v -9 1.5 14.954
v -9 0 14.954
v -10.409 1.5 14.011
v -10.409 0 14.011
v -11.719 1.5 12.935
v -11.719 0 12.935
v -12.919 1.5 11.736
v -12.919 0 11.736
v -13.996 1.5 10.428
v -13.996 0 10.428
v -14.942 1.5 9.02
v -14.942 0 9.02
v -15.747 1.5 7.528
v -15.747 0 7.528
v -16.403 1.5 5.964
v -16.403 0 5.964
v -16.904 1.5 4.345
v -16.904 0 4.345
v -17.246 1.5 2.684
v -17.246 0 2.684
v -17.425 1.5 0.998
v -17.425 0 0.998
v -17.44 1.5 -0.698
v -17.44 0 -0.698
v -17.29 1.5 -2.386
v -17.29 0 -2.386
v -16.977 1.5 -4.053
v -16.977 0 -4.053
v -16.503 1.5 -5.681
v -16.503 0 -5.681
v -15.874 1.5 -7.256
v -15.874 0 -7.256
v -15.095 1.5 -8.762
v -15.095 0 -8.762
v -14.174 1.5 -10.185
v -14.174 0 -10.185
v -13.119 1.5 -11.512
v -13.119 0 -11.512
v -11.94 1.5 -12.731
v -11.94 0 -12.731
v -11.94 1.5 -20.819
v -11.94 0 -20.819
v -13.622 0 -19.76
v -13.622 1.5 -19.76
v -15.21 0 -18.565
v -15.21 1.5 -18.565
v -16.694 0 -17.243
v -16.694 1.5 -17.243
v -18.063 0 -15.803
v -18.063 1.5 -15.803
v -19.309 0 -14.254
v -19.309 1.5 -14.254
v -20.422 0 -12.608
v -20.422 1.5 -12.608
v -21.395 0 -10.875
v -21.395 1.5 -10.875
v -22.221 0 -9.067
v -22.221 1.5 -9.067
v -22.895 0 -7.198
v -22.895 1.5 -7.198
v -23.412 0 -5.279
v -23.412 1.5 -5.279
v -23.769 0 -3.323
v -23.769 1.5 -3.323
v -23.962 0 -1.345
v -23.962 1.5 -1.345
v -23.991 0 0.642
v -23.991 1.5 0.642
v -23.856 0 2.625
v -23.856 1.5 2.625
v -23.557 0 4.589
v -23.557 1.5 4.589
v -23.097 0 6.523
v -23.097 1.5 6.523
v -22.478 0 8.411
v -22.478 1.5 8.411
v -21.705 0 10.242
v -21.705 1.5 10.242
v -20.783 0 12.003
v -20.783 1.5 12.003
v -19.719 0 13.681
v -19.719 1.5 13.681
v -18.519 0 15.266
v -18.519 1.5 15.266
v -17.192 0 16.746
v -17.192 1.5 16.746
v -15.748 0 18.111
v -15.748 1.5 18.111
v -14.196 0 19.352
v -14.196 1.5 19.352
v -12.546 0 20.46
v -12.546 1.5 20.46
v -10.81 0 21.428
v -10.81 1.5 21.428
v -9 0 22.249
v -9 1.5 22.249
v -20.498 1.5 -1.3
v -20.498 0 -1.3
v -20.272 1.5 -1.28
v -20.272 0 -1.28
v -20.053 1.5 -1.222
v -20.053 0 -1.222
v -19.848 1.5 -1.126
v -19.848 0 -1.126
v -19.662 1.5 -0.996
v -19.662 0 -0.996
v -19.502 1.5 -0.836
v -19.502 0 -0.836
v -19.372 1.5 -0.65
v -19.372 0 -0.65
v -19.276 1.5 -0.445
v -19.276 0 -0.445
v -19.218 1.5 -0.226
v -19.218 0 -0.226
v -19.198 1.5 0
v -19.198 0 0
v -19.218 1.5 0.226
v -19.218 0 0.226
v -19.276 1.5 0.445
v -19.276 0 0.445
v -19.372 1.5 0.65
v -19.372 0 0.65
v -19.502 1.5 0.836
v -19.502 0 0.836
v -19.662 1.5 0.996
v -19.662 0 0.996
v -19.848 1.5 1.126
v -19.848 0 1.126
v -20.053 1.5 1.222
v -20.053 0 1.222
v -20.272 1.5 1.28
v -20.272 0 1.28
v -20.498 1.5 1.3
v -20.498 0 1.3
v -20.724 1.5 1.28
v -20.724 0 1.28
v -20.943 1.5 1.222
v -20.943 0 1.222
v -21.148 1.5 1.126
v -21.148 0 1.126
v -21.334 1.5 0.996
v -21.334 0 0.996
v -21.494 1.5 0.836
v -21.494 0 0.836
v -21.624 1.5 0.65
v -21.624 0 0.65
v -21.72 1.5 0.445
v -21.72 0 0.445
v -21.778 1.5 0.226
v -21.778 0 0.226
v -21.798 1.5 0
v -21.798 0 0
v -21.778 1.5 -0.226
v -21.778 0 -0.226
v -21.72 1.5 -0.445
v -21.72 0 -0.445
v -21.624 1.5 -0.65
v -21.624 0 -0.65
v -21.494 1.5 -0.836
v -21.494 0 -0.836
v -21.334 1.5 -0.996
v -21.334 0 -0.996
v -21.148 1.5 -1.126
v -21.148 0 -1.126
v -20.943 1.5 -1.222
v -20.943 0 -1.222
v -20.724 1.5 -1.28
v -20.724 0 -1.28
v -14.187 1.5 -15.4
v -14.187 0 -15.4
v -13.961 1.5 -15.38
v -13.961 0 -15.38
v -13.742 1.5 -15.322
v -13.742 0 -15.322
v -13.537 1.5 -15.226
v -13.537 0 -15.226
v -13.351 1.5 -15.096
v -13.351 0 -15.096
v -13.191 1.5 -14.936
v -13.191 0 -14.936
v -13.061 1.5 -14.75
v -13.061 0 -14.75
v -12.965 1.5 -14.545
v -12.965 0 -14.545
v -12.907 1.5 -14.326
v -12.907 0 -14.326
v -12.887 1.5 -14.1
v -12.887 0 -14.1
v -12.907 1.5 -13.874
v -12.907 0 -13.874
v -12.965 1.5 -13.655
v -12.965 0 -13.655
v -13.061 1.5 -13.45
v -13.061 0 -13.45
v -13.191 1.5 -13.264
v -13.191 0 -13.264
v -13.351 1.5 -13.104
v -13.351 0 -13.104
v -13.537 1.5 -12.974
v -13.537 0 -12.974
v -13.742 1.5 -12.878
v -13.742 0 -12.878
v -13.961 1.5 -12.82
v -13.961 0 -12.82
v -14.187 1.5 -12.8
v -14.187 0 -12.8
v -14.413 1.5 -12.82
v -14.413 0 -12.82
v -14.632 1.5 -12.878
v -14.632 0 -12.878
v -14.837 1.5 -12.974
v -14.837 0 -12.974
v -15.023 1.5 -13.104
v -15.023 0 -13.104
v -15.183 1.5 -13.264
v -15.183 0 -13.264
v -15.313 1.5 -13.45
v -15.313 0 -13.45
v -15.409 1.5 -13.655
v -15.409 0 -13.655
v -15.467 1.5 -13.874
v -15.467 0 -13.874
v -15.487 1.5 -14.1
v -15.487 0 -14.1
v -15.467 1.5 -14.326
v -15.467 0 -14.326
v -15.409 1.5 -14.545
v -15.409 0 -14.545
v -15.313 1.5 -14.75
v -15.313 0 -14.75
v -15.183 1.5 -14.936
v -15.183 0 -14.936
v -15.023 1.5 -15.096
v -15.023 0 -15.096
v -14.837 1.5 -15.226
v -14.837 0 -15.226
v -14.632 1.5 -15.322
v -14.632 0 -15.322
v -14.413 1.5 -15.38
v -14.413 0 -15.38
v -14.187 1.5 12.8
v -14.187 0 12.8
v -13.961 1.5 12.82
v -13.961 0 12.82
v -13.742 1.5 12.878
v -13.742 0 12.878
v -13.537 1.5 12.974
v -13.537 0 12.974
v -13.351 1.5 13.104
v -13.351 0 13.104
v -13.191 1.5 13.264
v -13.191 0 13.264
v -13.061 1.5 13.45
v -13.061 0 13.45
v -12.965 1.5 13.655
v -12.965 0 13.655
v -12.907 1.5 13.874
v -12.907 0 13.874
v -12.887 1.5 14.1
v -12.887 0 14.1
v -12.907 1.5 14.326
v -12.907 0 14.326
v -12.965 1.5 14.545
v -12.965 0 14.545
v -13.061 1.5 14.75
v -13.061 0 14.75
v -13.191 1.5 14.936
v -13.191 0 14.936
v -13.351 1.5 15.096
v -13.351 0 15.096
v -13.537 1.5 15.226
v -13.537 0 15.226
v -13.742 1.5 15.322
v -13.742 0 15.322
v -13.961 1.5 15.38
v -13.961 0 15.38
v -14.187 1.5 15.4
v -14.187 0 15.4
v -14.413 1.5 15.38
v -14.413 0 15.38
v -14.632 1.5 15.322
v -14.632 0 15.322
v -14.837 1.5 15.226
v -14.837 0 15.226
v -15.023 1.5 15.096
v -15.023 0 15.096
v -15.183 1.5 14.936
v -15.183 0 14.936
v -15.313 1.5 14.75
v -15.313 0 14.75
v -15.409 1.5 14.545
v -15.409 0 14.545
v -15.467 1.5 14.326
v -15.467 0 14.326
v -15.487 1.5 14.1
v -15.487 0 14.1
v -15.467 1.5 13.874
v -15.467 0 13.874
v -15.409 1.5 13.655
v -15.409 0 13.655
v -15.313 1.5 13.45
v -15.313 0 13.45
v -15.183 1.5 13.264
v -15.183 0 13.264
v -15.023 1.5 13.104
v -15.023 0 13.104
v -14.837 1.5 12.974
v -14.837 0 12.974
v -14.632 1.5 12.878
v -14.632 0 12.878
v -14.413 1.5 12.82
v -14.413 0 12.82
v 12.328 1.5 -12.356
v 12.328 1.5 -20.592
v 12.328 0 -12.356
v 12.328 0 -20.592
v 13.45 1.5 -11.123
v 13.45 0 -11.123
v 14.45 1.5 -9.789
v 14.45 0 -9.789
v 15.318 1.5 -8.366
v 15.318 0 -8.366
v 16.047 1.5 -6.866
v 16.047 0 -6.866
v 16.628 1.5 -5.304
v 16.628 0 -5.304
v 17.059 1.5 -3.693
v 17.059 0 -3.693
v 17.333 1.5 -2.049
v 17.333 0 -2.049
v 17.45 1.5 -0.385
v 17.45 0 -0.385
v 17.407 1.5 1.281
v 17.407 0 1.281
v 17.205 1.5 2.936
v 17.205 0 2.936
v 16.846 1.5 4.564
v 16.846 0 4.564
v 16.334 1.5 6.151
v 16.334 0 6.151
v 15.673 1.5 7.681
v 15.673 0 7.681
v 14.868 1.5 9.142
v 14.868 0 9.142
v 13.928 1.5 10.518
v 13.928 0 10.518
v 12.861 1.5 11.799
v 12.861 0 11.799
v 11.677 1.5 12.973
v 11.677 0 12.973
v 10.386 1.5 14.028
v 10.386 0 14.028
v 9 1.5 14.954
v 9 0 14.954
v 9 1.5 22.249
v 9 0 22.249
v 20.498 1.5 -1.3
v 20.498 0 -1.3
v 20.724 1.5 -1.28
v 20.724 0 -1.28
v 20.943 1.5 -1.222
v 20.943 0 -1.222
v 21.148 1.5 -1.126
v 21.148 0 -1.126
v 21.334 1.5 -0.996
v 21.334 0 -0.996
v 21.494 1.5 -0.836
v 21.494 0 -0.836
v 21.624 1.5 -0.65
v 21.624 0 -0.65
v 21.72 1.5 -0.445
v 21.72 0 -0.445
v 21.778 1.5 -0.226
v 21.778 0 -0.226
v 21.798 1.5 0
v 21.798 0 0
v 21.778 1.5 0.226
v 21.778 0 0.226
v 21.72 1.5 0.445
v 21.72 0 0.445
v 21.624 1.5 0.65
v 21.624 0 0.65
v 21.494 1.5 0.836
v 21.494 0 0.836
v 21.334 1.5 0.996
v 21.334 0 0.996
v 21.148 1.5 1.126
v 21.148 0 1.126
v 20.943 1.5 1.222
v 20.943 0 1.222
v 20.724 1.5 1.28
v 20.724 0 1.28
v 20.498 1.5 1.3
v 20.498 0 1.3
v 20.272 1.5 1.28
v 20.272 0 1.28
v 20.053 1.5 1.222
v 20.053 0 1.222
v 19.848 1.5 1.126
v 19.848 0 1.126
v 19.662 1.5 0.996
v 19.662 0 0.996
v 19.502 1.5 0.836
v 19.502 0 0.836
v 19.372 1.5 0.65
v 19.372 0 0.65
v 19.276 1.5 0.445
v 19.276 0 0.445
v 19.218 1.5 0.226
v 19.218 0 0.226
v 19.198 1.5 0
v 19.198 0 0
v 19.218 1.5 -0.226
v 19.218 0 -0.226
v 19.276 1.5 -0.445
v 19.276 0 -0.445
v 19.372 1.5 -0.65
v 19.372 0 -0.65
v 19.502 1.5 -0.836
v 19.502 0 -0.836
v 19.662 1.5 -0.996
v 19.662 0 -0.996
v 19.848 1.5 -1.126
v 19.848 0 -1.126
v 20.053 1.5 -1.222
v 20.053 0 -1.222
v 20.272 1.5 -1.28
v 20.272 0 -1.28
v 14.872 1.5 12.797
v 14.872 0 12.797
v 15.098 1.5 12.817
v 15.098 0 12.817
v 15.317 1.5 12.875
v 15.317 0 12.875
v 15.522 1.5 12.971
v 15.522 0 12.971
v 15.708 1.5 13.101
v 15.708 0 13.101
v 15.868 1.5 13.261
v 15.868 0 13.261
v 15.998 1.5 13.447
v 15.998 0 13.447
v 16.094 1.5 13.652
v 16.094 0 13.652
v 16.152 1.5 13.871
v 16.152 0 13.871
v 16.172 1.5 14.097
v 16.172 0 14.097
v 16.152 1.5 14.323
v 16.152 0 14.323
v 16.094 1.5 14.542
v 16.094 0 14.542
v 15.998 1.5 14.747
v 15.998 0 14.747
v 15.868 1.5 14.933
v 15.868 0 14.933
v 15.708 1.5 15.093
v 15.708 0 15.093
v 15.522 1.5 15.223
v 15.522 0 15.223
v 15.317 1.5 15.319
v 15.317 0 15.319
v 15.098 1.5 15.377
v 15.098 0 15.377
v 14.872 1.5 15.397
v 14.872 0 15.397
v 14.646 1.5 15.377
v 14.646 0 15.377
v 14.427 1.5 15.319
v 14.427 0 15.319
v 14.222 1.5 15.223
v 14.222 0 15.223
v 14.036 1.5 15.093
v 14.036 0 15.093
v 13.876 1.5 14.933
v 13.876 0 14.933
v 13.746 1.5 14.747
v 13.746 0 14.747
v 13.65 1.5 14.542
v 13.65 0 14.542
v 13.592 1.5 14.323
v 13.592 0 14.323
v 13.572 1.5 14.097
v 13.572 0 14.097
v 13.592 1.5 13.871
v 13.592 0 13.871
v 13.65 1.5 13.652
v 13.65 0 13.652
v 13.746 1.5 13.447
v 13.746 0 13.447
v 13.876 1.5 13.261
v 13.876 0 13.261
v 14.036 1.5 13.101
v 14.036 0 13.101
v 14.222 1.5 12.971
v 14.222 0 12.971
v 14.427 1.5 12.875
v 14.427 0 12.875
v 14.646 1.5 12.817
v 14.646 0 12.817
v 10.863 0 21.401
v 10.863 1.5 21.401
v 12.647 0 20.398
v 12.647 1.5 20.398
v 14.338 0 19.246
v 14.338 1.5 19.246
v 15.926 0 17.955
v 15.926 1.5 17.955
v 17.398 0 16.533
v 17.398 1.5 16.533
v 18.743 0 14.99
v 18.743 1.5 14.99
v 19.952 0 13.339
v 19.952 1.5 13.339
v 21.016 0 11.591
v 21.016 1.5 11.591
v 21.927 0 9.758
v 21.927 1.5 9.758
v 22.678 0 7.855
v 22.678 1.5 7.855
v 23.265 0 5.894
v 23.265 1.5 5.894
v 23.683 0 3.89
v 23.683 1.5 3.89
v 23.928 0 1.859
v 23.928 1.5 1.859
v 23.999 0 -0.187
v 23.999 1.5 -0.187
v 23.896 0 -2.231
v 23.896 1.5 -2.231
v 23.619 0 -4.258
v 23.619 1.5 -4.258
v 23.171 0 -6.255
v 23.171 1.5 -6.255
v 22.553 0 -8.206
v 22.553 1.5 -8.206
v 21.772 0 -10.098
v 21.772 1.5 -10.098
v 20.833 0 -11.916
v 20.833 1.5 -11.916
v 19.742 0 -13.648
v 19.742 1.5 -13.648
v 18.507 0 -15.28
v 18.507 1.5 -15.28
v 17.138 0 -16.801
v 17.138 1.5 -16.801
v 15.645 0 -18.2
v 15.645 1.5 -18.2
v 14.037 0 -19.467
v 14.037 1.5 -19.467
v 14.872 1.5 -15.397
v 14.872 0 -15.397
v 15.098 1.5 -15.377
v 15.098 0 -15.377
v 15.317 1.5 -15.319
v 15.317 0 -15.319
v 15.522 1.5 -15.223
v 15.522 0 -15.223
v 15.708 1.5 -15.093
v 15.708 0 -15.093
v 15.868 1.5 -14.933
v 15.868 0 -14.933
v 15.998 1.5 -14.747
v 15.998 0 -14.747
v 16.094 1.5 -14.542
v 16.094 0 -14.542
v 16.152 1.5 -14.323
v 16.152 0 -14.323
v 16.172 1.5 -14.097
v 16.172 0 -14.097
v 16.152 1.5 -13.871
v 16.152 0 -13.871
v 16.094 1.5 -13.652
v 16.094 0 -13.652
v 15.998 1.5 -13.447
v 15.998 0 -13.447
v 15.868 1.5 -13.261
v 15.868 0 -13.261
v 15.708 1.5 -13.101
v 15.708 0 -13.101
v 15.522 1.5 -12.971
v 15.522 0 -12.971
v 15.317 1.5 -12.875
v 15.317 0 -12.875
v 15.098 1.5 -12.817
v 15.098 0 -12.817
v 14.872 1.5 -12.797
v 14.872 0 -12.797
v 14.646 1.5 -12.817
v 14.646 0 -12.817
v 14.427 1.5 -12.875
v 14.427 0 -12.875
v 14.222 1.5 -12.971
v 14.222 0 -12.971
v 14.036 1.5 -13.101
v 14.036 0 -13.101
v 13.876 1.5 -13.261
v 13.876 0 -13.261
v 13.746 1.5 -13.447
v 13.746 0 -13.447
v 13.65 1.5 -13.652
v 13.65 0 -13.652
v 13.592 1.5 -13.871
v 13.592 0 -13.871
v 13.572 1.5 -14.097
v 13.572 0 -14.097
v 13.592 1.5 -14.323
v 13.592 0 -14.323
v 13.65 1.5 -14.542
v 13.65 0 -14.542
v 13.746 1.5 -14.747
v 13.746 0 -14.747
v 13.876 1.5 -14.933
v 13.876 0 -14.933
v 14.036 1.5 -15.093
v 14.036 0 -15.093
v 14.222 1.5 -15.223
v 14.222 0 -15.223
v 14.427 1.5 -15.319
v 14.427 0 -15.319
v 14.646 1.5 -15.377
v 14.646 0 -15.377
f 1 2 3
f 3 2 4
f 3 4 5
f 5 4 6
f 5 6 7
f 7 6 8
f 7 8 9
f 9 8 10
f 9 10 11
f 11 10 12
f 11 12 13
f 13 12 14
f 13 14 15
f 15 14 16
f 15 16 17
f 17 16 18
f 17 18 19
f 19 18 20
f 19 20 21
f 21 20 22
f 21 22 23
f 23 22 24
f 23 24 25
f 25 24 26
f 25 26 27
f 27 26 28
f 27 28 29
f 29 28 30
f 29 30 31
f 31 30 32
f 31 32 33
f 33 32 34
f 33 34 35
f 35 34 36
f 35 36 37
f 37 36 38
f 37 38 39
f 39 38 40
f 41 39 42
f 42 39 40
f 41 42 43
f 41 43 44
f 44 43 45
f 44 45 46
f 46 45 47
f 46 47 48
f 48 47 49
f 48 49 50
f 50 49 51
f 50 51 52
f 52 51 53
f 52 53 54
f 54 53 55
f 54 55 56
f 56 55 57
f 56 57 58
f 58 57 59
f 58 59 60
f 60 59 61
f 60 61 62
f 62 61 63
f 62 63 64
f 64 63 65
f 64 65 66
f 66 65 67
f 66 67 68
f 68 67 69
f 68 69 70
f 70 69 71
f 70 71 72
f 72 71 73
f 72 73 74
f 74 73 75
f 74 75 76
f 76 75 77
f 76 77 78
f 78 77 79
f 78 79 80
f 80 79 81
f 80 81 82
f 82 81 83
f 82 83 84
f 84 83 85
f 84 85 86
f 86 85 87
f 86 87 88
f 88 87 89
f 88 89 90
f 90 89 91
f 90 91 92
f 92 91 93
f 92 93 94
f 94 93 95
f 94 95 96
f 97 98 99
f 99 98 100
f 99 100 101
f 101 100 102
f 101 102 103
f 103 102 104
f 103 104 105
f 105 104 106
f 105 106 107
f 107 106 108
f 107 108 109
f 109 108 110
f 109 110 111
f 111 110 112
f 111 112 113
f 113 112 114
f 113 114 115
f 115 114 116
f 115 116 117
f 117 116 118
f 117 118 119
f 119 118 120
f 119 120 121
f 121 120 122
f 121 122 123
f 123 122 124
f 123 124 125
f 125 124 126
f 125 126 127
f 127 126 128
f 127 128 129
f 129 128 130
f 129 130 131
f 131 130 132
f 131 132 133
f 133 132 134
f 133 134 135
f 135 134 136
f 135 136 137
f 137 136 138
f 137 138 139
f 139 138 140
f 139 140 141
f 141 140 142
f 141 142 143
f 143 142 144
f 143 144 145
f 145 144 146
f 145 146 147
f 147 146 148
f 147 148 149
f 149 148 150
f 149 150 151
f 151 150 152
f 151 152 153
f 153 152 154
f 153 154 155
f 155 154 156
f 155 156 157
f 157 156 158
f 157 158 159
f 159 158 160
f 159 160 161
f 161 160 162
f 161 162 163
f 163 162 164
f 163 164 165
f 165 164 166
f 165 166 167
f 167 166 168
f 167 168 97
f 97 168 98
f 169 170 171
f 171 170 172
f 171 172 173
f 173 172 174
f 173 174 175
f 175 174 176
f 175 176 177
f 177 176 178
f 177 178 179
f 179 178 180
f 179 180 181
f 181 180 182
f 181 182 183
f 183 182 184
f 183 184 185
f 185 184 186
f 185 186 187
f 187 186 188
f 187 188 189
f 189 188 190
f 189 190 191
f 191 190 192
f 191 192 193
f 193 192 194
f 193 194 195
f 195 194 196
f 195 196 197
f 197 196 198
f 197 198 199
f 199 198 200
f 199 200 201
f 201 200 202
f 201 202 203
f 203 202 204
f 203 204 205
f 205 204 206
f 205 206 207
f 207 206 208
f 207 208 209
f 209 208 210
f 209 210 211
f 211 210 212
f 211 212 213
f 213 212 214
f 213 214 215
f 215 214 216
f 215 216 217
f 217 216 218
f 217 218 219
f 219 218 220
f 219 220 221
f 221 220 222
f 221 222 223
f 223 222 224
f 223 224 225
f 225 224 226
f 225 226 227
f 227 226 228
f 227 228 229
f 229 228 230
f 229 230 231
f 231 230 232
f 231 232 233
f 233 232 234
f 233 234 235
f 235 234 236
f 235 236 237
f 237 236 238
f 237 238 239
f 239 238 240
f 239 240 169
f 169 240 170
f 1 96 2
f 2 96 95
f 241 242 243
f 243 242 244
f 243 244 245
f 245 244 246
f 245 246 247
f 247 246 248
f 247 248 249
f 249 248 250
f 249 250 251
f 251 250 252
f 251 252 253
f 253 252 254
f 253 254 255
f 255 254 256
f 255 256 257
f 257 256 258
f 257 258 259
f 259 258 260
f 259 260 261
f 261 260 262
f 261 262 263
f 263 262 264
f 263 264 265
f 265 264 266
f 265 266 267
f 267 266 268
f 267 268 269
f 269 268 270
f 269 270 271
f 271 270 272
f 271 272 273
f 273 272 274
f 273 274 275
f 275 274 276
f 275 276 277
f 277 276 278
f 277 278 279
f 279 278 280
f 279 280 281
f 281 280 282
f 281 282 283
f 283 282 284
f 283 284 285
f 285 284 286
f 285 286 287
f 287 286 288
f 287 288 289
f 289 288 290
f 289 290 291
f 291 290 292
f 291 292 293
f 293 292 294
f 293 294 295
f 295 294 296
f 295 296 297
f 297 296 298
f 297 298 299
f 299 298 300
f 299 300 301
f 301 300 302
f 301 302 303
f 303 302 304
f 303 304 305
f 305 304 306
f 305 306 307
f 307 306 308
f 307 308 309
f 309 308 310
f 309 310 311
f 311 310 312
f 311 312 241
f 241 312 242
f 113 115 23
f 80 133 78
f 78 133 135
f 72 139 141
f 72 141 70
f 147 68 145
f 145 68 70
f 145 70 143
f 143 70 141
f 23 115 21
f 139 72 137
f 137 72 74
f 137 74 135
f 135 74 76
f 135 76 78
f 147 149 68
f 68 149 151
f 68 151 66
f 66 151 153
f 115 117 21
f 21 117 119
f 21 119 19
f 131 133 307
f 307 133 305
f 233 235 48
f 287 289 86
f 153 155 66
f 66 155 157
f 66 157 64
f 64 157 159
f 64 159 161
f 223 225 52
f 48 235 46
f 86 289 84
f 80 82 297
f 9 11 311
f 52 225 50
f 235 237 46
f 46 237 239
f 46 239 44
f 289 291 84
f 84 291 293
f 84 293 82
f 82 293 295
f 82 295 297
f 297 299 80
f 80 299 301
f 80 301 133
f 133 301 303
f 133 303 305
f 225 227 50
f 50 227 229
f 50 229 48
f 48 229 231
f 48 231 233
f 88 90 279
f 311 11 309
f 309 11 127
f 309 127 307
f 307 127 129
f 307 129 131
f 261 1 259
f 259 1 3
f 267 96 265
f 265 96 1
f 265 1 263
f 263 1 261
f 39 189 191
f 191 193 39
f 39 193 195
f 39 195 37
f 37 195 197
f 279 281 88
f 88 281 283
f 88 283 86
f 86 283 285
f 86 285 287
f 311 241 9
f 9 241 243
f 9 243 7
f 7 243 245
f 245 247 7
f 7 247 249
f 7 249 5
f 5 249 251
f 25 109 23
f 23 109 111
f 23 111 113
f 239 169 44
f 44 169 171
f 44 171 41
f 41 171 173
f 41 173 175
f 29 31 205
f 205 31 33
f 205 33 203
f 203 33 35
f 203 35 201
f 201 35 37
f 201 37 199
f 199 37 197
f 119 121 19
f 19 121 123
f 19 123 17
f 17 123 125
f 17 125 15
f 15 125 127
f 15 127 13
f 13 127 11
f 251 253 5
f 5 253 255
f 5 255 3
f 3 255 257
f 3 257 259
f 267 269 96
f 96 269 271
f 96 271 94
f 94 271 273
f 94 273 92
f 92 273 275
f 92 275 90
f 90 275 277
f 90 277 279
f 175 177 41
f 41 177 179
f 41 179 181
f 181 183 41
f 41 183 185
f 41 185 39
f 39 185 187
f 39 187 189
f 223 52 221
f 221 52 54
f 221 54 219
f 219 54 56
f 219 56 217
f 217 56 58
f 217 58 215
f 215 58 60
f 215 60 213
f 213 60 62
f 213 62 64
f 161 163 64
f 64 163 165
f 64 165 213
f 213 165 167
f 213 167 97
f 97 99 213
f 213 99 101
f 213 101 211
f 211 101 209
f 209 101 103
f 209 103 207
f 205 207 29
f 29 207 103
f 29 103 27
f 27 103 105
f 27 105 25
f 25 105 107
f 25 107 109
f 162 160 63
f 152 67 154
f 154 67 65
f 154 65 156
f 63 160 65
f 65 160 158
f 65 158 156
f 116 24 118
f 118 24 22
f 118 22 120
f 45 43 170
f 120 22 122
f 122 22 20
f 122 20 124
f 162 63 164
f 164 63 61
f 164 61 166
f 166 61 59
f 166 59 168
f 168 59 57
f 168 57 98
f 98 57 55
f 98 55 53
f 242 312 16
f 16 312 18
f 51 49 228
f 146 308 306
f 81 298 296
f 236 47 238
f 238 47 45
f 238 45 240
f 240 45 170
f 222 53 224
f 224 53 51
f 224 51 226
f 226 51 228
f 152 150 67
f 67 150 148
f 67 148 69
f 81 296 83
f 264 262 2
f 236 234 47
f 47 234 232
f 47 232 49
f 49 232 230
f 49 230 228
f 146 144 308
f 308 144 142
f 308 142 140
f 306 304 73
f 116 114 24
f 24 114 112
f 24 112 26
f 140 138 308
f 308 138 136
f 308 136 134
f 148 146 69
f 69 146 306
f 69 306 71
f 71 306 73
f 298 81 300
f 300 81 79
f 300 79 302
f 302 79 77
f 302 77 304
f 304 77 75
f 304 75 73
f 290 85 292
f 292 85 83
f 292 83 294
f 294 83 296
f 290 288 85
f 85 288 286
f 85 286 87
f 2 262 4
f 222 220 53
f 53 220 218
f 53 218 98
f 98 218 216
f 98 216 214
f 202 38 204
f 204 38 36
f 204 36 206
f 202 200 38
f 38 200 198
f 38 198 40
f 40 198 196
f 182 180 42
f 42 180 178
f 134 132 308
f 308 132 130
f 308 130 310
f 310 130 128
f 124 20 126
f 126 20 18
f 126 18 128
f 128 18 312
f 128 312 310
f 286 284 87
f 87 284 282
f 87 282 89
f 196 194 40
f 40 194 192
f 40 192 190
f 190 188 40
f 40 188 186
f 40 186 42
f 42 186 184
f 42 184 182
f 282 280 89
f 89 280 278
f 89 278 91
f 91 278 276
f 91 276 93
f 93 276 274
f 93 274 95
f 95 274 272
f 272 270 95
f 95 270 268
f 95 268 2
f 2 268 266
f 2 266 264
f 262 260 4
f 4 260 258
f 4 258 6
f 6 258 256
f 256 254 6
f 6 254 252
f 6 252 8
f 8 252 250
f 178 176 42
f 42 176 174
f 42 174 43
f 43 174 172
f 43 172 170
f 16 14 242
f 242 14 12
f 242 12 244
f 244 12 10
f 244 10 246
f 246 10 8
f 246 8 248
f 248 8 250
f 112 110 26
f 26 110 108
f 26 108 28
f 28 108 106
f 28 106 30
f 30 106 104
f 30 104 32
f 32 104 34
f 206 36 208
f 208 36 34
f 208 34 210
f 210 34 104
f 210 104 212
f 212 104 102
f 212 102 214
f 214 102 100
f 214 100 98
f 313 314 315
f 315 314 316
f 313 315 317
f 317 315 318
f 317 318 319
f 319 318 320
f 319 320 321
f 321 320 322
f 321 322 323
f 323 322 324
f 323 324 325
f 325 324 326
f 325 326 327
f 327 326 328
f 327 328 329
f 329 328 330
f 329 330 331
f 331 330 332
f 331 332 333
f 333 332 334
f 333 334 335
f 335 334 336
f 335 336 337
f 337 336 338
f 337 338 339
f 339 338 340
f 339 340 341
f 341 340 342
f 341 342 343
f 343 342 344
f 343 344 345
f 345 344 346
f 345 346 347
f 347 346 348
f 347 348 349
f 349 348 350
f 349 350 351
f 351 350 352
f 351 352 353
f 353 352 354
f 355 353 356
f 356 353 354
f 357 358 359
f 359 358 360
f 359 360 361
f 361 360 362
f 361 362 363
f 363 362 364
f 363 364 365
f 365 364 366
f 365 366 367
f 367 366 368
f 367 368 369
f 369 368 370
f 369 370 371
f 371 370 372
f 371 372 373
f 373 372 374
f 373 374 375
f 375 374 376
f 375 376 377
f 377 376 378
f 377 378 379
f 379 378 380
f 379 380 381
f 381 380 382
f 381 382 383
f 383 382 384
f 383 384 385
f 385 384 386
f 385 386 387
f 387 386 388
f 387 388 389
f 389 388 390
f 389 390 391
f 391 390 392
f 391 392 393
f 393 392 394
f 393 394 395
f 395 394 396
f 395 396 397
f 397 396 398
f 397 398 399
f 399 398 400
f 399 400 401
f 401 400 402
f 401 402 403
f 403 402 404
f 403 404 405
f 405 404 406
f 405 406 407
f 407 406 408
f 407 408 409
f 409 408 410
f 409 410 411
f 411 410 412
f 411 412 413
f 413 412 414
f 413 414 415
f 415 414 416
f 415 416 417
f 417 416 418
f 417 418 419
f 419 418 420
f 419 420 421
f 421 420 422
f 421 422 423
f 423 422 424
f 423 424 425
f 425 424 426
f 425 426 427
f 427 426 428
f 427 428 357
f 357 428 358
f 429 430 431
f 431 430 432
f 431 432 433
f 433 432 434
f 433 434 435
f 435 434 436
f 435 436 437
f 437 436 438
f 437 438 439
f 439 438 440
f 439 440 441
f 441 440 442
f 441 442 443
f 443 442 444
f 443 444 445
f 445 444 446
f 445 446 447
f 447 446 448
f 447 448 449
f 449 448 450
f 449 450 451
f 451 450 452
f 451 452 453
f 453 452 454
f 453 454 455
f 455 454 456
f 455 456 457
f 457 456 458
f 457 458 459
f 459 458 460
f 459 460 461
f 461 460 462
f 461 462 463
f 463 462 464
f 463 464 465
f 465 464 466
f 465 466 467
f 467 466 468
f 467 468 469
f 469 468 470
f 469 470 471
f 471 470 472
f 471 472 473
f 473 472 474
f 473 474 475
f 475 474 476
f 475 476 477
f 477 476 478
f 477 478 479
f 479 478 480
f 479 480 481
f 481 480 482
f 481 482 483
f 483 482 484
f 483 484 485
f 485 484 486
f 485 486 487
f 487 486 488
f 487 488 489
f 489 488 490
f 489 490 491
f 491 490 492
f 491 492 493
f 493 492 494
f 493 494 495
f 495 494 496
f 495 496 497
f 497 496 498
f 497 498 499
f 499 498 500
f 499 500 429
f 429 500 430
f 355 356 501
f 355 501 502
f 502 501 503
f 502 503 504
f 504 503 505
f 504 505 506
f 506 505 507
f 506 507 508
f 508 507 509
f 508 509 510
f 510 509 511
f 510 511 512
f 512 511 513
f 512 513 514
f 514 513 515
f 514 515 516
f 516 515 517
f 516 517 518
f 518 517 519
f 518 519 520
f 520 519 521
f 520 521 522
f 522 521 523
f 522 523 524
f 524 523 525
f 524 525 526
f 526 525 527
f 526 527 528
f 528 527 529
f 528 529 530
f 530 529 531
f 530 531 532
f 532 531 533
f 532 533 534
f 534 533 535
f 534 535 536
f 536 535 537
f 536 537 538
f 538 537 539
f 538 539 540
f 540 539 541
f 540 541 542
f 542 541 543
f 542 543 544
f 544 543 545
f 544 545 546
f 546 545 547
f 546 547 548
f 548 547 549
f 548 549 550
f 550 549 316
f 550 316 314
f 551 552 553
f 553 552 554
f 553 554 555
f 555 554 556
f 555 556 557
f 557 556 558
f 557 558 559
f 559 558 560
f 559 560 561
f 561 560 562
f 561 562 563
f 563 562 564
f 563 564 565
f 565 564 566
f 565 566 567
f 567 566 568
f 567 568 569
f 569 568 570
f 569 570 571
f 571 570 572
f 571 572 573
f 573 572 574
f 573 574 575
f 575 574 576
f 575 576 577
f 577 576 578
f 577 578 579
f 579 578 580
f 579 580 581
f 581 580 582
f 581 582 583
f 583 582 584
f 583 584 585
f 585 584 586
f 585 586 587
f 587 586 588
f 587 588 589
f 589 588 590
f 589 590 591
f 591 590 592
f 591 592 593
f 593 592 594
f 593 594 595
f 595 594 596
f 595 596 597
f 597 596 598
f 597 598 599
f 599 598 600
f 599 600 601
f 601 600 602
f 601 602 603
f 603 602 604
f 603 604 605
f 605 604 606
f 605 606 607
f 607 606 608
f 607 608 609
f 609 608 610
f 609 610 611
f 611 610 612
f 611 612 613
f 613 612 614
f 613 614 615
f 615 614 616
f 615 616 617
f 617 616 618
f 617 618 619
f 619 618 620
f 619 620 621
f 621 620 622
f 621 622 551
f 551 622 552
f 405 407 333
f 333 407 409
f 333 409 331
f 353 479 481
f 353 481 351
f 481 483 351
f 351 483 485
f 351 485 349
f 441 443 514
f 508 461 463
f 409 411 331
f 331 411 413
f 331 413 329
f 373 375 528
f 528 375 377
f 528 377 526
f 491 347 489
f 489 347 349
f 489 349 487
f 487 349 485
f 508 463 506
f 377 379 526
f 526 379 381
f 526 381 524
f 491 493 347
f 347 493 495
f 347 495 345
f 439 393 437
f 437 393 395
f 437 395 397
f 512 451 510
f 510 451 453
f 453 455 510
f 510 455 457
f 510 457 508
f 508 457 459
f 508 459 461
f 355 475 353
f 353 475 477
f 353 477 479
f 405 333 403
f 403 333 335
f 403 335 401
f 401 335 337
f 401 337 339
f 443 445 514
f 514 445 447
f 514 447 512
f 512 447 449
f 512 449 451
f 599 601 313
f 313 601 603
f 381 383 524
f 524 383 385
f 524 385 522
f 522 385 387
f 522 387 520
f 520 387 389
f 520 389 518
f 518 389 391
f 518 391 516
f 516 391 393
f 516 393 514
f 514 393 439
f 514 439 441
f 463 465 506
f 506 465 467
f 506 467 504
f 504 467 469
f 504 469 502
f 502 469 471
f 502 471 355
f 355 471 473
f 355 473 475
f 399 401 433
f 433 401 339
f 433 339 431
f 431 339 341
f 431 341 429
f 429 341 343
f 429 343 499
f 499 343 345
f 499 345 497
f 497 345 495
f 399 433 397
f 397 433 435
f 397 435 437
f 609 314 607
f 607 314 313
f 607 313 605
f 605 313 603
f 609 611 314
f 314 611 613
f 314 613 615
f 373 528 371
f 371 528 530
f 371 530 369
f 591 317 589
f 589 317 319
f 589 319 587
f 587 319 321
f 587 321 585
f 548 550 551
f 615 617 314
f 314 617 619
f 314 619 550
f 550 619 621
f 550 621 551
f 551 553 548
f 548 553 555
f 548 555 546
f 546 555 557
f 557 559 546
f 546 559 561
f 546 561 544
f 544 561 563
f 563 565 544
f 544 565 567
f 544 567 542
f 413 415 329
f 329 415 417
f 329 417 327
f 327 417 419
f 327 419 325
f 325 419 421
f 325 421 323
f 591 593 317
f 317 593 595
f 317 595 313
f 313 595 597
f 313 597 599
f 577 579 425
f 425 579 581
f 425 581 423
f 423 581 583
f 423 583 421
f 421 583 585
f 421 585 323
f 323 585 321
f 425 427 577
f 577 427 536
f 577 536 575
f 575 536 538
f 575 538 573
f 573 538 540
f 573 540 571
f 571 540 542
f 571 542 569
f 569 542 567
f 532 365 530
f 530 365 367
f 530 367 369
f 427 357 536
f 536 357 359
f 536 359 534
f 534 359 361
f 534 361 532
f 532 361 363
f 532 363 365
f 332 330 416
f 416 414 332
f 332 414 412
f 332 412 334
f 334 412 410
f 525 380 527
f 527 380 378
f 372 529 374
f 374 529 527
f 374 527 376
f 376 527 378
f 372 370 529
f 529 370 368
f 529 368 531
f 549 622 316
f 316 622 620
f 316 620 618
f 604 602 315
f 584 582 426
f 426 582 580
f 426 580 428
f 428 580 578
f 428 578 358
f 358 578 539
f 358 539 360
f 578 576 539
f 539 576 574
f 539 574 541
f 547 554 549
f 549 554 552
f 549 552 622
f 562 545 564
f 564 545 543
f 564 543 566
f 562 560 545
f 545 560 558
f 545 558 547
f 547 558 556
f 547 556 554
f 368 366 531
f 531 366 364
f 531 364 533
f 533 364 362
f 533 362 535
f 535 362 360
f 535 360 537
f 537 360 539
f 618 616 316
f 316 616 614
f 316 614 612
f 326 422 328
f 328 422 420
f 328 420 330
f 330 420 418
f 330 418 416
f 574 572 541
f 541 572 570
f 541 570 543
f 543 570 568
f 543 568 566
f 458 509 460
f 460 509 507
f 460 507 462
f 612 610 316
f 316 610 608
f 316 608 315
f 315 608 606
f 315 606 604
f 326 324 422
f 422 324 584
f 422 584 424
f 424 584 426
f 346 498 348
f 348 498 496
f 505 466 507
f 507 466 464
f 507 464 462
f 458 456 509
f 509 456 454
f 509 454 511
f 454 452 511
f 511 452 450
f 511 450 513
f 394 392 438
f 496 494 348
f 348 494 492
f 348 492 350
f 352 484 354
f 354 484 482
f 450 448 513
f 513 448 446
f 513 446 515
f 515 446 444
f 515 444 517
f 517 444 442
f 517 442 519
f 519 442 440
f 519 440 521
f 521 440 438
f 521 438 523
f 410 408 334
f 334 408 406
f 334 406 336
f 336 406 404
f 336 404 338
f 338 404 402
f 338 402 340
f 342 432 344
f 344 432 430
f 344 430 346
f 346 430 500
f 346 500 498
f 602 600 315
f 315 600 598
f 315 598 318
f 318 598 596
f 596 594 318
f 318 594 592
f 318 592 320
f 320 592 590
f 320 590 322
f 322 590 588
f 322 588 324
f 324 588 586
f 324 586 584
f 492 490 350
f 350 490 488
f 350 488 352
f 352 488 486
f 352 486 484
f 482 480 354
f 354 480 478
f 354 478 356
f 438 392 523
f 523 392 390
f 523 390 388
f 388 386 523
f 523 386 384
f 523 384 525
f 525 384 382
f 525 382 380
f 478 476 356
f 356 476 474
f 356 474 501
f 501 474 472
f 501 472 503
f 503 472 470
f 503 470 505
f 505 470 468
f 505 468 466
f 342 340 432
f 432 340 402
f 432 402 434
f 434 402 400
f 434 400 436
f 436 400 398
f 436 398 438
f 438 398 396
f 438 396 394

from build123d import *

# Parameters (mm, degrees)
SKETCH_1_R      = 2.3
SKETCH_1_R_2    = 1.3
EXTRUDE_1_DEPTH = 1.5


with BuildPart() as part:
    # 草图1 → 凸台-拉伸1 (new body)
    # profile 1 of 8: a face of its own
    with BuildSketch(Plane(origin=(0, 0, 0), x_dir=(1, 0, 0), z_dir=(0, 1, 0))):
        with BuildLine():
            Line((-9, -22.248595461), (-9, -14.954449778))
            ThreePointArc((-9, -14.954449778), (-17.356224893, -1.843102181), (-11.939965885, 12.73078092))
            Line((-11.939965885, 12.73078092), (-11.939965885, 13.609247836))
            ThreePointArc((-11.939965885, 13.609247836), (-16.487, 14.1), (-11.939965885, 14.590752164))
            Line((-11.939965885, 14.590752164), (-11.939965885, 20.819154994))
            ThreePointArc((-11.939965885, 20.819154994), (-23.944275415, -1.634525883), (-9, -22.248595461))
        make_face()
        with Locations((-14.187, -14.1)):
            Circle(SKETCH_1_R, mode=Mode.SUBTRACT)
        with Locations((-20.498, 0)):
            Circle(SKETCH_1_R, mode=Mode.SUBTRACT)
    # profile 2 of 8: a face of its own
    with BuildSketch(Plane(origin=(0, 0, 0), x_dir=(1, 0, 0), z_dir=(0, 1, 0))):
        with BuildLine():
            Line((12.327725044, 20.59192063), (12.327725044, 12.355677376))
            ThreePointArc((12.327725044, 12.355677376), (17.325666659, -2.111123633), (9, -14.954449778))
            Line((9, -14.954449778), (9, -22.248595461))
            ThreePointArc((9, -22.248595461), (19.899748742, -13.416407865), (24, 0))
            ThreePointArc((24, 0), (20.879001426, 11.835003146), (12.327725044, 20.59192063))
        make_face()
        with Locations((14.872, -14.097)):
            Circle(SKETCH_1_R, mode=Mode.SUBTRACT)
        with Locations((20.498, 0)):
            Circle(SKETCH_1_R, mode=Mode.SUBTRACT)
        with Locations((14.872, 14.097)):
            Circle(SKETCH_1_R, mode=Mode.SUBTRACT)
    # profile 3 of 8: a face of its own
    with BuildSketch(Plane(origin=(0, 0, 0), x_dir=(1, 0, 0), z_dir=(0, 1, 0))):
        with BuildLine():
            ThreePointArc((-11.939965885, 14.590752164), (-16.487, 14.1), (-11.939965885, 13.609247836))
            Line((-11.939965885, 13.609247836), (-11.939965885, 14.590752164))
        make_face()
        with Locations(Location((-14.187, 14.1, 0), (0, 0, 270))):
            Circle(SKETCH_1_R_2, mode=Mode.SUBTRACT)
    # profile 4 of 8: a face of its own
    with BuildSketch(Plane(origin=(0, 0, 0), x_dir=(1, 0, 0), z_dir=(0, 1, 0))):
        with Locations((-20.498, 0)):
            Circle(SKETCH_1_R)
        with Locations(Location((-20.498, 0, 0), (0, 0, 270))):
            Circle(SKETCH_1_R_2, mode=Mode.SUBTRACT)
    # profile 5 of 8: a face of its own
    with BuildSketch(Plane(origin=(0, 0, 0), x_dir=(1, 0, 0), z_dir=(0, 1, 0))):
        with Locations((-14.187, -14.1)):
            Circle(SKETCH_1_R)
        with Locations(Location((-14.187, -14.1, 0), (0, 0, 270))):
            Circle(SKETCH_1_R_2, mode=Mode.SUBTRACT)
    # profile 6 of 8: a face of its own
    with BuildSketch(Plane(origin=(0, 0, 0), x_dir=(1, 0, 0), z_dir=(0, 1, 0))):
        with Locations((20.498, 0)):
            Circle(SKETCH_1_R)
        with Locations(Location((20.498, 0, 0), (0, 0, 270))):
            Circle(SKETCH_1_R_2, mode=Mode.SUBTRACT)
    # profile 7 of 8: a face of its own
    with BuildSketch(Plane(origin=(0, 0, 0), x_dir=(1, 0, 0), z_dir=(0, 1, 0))):
        with Locations((14.872, 14.097)):
            Circle(SKETCH_1_R)
        with Locations(Location((14.872, 14.097, 0), (0, 0, 270))):
            Circle(SKETCH_1_R_2, mode=Mode.SUBTRACT)
    # profile 8 of 8: a face of its own
    with BuildSketch(Plane(origin=(0, 0, 0), x_dir=(1, 0, 0), z_dir=(0, 1, 0))):
        with Locations((14.872, -14.097)):
            Circle(SKETCH_1_R)
        with Locations(Location((14.872, -14.097, 0), (0, 0, 270))):
            Circle(SKETCH_1_R_2, mode=Mode.SUBTRACT)
    extrude(amount=EXTRUDE_1_DEPTH)


solid = part.part
